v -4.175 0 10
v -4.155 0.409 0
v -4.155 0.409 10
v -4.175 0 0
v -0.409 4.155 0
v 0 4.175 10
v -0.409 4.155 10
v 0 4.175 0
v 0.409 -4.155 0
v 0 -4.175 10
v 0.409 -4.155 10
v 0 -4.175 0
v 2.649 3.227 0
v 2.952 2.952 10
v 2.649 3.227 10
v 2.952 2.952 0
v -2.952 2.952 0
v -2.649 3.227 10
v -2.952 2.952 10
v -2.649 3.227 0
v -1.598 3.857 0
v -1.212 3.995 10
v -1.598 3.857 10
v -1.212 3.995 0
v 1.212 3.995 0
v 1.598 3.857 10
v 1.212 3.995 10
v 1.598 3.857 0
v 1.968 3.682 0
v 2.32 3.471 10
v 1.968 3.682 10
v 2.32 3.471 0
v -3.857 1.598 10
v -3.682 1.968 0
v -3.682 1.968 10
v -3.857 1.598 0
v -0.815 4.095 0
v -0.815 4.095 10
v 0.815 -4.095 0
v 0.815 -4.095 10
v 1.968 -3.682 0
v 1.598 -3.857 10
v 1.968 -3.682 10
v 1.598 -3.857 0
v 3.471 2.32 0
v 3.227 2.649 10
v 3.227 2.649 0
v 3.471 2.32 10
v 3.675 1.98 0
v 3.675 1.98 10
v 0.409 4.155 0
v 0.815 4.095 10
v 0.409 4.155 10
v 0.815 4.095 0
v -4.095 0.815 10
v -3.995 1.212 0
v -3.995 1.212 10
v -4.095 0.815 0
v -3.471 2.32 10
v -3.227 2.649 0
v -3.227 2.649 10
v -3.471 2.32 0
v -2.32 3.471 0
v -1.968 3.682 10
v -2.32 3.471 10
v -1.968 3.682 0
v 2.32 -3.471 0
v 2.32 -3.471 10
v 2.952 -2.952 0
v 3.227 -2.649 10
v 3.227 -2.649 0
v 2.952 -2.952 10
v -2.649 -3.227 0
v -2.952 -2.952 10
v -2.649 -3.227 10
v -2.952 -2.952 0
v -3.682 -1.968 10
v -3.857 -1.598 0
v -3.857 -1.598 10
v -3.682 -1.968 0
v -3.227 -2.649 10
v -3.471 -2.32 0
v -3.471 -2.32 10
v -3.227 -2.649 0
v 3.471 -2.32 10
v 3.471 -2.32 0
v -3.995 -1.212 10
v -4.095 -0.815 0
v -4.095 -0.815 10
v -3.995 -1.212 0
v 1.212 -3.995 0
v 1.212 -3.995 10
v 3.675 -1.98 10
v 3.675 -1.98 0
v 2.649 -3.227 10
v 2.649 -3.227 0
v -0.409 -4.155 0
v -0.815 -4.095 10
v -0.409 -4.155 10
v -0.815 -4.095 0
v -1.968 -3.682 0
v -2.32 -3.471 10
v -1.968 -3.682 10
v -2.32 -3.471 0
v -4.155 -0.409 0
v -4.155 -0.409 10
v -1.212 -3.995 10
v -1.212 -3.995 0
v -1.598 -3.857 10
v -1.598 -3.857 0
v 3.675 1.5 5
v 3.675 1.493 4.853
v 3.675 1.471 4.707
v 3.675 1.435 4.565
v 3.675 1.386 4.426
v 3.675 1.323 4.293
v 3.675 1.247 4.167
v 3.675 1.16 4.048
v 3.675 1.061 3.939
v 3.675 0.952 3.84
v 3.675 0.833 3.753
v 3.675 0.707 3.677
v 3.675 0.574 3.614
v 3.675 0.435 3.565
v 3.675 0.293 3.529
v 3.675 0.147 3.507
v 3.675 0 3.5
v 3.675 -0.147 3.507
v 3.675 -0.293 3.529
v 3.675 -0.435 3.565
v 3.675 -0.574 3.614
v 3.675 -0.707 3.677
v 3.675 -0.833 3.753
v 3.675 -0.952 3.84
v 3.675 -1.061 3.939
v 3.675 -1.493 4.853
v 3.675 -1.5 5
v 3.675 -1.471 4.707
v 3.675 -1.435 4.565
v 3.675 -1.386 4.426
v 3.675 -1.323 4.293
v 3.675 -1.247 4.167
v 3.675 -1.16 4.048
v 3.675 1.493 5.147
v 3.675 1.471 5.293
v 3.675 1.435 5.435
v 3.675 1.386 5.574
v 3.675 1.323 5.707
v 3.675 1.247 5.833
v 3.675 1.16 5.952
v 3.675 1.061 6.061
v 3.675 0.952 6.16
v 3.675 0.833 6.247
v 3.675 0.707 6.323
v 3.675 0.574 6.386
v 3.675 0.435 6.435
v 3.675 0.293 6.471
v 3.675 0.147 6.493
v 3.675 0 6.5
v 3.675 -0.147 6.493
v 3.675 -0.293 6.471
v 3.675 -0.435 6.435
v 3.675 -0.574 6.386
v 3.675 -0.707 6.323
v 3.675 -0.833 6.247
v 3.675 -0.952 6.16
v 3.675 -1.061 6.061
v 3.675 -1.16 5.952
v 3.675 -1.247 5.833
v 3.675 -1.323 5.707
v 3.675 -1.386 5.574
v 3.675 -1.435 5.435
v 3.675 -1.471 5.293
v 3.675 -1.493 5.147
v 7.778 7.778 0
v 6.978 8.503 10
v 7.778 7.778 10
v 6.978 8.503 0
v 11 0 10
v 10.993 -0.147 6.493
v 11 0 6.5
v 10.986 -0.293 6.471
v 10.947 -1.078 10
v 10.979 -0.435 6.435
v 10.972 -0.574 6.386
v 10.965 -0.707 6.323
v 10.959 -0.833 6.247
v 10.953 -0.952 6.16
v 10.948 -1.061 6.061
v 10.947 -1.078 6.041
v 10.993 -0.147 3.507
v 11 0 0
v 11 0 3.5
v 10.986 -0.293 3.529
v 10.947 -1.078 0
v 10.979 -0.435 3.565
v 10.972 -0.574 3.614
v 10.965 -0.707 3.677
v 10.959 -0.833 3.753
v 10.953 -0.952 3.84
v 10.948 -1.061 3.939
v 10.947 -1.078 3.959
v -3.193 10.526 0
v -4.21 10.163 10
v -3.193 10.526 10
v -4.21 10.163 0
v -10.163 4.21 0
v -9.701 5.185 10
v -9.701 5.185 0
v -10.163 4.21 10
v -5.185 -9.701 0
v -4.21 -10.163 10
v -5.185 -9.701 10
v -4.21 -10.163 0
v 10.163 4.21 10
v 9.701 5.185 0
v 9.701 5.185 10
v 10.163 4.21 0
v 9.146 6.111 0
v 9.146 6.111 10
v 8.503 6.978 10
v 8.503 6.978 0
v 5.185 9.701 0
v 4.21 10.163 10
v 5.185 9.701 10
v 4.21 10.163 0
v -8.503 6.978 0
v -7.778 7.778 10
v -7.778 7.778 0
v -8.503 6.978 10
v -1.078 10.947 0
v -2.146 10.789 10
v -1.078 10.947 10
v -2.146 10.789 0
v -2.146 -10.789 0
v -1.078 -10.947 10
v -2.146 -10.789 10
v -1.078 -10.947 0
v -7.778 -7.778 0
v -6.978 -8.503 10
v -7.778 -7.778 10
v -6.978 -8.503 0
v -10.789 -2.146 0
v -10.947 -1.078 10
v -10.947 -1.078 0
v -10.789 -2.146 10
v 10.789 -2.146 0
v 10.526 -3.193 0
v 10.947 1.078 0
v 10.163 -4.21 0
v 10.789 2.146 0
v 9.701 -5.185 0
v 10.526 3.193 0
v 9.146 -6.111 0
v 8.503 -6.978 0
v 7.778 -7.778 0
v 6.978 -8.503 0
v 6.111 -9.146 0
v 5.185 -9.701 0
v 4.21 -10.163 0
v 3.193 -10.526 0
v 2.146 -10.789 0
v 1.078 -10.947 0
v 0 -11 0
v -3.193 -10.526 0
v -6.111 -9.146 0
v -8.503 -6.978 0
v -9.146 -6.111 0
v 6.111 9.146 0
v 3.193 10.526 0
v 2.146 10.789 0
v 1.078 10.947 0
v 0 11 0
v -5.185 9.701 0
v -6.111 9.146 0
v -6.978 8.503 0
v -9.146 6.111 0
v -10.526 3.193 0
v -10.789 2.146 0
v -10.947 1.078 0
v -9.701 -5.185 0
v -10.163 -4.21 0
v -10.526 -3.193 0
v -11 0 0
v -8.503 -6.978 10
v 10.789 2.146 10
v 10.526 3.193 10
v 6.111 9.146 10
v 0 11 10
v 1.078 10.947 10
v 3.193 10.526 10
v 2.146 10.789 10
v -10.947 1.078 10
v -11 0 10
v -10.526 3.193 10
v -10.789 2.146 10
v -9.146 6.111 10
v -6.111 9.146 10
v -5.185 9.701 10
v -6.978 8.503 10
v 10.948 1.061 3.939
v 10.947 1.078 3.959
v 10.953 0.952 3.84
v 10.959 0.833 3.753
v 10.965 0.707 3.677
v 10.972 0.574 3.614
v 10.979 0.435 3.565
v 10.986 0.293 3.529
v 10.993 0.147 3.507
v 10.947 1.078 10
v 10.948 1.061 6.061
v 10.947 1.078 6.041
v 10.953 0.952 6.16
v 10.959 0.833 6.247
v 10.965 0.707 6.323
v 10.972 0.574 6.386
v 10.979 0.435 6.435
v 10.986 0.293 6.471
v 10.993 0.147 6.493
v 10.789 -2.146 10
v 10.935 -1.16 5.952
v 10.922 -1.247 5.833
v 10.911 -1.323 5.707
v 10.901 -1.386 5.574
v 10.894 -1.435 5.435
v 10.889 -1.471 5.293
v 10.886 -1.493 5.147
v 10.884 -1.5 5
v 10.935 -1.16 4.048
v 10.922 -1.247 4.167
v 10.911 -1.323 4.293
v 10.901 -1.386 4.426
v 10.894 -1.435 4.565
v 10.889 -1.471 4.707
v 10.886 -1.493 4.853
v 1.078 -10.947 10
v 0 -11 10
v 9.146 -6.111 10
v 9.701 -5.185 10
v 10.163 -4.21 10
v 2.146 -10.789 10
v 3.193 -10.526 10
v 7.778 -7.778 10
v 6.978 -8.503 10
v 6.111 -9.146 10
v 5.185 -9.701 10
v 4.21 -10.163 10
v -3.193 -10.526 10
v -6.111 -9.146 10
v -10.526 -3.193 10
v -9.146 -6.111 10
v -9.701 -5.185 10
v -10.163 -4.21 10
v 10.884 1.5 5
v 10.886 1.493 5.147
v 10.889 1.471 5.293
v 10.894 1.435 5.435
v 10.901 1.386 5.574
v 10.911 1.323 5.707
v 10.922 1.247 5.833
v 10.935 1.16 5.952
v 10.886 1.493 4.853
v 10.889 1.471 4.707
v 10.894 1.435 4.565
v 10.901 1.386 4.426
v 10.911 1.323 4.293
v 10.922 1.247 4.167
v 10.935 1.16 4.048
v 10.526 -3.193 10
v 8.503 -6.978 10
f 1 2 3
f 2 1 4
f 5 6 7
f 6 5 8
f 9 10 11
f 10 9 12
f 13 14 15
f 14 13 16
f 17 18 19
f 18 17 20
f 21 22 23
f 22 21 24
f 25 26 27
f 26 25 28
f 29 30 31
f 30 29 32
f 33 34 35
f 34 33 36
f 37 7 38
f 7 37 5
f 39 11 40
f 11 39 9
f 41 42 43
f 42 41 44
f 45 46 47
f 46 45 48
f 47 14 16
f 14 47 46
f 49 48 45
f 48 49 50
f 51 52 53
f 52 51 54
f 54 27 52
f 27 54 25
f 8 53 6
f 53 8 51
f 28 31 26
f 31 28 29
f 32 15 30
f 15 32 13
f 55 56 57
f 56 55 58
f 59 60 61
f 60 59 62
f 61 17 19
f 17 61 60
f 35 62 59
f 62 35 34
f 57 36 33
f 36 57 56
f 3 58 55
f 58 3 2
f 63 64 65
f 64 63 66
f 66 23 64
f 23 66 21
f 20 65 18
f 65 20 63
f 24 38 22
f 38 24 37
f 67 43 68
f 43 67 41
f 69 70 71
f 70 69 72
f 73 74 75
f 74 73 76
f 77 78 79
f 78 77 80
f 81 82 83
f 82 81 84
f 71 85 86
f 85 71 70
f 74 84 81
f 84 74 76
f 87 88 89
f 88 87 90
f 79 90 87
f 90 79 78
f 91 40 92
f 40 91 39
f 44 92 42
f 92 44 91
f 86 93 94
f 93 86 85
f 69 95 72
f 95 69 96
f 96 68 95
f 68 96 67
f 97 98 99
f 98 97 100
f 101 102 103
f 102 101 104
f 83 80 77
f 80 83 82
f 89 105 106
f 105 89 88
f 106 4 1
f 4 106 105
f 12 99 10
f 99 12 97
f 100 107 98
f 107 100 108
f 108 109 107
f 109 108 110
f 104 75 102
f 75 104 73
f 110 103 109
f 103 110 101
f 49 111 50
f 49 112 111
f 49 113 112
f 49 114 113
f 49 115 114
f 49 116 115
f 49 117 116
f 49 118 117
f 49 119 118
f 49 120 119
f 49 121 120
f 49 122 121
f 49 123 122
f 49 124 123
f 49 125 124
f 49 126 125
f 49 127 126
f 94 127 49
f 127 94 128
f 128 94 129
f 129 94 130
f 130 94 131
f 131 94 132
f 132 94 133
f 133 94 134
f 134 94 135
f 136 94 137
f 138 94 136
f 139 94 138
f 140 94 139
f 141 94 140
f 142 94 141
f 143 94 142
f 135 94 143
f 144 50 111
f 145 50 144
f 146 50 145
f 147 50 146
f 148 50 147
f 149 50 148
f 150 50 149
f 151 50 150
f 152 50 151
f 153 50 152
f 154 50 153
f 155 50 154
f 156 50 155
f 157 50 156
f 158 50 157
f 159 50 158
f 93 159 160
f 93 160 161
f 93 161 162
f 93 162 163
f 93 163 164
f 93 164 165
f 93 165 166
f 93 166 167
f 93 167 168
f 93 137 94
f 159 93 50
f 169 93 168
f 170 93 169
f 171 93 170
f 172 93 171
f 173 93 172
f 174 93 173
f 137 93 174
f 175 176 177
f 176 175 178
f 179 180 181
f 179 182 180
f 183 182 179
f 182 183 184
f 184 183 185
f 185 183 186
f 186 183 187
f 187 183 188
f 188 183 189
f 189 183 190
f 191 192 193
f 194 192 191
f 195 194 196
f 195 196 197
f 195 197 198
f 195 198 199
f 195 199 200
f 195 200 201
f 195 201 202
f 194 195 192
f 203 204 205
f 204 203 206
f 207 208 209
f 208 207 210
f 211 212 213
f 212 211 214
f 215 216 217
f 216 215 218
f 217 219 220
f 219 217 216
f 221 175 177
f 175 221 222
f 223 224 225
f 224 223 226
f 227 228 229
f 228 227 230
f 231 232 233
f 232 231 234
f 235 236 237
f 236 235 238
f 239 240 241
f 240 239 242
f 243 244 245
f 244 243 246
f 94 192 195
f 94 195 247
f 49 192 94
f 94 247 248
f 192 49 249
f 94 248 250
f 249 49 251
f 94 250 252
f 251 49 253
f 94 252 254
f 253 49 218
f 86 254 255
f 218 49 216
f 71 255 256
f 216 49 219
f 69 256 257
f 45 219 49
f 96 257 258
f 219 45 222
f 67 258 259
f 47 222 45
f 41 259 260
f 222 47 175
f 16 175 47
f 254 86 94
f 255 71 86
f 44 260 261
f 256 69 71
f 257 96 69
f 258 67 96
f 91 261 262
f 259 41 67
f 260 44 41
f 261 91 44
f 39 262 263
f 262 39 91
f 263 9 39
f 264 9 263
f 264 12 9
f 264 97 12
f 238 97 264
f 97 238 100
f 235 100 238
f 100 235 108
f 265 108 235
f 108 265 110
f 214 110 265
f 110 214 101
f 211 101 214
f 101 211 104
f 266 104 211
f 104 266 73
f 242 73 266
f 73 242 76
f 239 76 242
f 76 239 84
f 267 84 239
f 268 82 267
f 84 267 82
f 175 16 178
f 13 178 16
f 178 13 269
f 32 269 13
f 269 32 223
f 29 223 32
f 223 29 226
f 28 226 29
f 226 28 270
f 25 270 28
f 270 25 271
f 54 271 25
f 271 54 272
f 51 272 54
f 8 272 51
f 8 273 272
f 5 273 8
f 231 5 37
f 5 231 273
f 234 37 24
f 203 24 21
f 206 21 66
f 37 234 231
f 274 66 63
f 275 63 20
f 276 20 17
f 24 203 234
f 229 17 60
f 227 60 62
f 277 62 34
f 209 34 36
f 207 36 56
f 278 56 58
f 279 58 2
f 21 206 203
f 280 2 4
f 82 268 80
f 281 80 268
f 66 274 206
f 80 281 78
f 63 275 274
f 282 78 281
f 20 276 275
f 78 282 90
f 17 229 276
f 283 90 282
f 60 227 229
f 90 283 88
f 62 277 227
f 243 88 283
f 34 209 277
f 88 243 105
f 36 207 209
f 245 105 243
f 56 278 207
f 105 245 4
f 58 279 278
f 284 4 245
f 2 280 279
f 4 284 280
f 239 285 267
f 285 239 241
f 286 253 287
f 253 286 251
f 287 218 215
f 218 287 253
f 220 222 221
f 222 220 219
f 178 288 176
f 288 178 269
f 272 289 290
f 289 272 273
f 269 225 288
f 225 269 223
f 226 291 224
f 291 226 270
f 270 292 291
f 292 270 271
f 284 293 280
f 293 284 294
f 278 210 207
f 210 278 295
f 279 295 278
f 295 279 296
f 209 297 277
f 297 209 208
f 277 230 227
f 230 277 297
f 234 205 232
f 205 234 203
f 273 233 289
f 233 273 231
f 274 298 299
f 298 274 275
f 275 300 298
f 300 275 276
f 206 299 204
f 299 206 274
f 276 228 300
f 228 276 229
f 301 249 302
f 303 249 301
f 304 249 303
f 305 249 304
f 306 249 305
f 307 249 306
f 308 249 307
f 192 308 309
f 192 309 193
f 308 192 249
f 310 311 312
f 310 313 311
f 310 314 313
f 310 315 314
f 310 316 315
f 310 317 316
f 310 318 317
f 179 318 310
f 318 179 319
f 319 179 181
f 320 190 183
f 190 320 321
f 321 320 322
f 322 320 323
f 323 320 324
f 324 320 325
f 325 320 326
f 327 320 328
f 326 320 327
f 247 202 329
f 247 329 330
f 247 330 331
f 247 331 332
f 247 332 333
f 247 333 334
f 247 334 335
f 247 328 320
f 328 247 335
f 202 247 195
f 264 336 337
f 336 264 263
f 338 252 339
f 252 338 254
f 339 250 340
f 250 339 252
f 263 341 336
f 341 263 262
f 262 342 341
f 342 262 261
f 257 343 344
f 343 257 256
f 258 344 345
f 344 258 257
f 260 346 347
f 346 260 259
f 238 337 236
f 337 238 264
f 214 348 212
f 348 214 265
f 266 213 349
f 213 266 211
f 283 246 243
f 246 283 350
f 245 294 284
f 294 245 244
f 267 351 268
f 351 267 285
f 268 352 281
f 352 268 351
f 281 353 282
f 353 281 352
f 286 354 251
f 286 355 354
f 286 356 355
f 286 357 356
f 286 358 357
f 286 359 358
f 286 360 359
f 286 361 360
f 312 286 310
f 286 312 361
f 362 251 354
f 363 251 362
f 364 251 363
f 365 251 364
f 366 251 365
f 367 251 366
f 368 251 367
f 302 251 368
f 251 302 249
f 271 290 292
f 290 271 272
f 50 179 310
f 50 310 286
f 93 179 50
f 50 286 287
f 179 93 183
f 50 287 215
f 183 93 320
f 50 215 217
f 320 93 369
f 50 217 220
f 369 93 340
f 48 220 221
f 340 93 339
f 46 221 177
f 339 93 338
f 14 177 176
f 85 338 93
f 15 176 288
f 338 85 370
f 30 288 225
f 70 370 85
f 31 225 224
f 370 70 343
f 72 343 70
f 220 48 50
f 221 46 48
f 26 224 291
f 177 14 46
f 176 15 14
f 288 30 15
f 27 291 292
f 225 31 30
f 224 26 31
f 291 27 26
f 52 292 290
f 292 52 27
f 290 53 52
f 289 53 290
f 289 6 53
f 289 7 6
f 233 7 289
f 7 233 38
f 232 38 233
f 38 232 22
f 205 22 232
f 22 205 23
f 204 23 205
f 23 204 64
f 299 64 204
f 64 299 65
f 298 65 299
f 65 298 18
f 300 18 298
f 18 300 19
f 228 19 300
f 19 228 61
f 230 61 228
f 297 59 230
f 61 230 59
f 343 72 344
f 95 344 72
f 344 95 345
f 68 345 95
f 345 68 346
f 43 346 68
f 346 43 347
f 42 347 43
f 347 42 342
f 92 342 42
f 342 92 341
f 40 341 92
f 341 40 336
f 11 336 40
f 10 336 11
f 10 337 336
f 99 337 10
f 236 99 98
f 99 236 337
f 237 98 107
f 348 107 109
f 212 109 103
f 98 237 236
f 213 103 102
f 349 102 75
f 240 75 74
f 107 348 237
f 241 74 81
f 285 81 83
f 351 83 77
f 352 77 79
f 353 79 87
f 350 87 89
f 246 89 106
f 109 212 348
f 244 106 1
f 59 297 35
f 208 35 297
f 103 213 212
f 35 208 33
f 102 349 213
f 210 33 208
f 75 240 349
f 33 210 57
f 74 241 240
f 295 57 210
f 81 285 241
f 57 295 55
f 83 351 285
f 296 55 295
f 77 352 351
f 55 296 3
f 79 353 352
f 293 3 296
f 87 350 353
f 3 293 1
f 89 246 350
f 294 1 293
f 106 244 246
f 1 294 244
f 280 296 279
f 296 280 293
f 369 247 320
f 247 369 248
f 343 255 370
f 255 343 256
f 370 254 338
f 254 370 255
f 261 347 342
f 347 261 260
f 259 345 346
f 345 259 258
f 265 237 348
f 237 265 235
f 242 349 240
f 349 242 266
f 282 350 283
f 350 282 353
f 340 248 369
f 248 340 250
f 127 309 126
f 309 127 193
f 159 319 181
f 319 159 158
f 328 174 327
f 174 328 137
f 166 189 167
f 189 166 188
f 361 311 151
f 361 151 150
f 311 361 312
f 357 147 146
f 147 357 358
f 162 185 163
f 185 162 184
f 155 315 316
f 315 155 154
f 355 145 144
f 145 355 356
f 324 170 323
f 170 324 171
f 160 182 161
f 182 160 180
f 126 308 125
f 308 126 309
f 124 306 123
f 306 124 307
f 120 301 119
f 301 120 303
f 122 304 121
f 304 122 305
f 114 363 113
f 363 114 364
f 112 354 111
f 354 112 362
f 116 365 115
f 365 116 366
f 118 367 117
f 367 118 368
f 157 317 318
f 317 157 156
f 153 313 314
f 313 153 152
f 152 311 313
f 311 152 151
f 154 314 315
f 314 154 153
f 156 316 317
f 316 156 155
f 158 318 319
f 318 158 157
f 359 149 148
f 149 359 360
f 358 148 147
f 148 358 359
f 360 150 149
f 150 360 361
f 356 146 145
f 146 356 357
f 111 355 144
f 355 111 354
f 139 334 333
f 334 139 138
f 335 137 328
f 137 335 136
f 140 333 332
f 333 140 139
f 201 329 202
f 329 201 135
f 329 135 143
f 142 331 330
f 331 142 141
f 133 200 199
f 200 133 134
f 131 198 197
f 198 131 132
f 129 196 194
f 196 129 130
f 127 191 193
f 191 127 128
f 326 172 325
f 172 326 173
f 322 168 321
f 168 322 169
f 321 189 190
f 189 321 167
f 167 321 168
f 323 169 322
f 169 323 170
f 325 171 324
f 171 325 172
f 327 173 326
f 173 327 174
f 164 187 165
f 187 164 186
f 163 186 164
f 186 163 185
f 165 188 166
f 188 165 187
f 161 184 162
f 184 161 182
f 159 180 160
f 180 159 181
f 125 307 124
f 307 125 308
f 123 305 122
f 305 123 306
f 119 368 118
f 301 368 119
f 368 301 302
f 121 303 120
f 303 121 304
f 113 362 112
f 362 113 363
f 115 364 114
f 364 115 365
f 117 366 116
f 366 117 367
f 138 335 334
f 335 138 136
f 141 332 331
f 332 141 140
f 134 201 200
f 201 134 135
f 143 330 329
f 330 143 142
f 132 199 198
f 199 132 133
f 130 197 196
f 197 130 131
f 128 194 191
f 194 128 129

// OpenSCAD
// Gen-DZ — shaft collar with D-flat bore (set screw bears on the flat); print x4
include <parameters.scad>;
$fn = 64;
// D-flat keyed bore: flat faces +X (angle 0 = magnet pocket 0 = index notch)
module dflat_bore(h) {
    intersection() {
        cylinder(d=shaft_bore, h=h);
        translate([-shaft_bore, -shaft_bore, 0]) cube([shaft_bore + dflat_x, 2*shaft_bore, h]);
    }
}

od = 22; h = collar_h; set_d = 3.0;
difference() {
    cylinder(d=od, h=h);
    translate([0, 0, -0.1]) dflat_bore(h + 0.2);
    translate([0, 0, h/2]) rotate([0, 90, 0]) cylinder(d=set_d, h=od);
}
